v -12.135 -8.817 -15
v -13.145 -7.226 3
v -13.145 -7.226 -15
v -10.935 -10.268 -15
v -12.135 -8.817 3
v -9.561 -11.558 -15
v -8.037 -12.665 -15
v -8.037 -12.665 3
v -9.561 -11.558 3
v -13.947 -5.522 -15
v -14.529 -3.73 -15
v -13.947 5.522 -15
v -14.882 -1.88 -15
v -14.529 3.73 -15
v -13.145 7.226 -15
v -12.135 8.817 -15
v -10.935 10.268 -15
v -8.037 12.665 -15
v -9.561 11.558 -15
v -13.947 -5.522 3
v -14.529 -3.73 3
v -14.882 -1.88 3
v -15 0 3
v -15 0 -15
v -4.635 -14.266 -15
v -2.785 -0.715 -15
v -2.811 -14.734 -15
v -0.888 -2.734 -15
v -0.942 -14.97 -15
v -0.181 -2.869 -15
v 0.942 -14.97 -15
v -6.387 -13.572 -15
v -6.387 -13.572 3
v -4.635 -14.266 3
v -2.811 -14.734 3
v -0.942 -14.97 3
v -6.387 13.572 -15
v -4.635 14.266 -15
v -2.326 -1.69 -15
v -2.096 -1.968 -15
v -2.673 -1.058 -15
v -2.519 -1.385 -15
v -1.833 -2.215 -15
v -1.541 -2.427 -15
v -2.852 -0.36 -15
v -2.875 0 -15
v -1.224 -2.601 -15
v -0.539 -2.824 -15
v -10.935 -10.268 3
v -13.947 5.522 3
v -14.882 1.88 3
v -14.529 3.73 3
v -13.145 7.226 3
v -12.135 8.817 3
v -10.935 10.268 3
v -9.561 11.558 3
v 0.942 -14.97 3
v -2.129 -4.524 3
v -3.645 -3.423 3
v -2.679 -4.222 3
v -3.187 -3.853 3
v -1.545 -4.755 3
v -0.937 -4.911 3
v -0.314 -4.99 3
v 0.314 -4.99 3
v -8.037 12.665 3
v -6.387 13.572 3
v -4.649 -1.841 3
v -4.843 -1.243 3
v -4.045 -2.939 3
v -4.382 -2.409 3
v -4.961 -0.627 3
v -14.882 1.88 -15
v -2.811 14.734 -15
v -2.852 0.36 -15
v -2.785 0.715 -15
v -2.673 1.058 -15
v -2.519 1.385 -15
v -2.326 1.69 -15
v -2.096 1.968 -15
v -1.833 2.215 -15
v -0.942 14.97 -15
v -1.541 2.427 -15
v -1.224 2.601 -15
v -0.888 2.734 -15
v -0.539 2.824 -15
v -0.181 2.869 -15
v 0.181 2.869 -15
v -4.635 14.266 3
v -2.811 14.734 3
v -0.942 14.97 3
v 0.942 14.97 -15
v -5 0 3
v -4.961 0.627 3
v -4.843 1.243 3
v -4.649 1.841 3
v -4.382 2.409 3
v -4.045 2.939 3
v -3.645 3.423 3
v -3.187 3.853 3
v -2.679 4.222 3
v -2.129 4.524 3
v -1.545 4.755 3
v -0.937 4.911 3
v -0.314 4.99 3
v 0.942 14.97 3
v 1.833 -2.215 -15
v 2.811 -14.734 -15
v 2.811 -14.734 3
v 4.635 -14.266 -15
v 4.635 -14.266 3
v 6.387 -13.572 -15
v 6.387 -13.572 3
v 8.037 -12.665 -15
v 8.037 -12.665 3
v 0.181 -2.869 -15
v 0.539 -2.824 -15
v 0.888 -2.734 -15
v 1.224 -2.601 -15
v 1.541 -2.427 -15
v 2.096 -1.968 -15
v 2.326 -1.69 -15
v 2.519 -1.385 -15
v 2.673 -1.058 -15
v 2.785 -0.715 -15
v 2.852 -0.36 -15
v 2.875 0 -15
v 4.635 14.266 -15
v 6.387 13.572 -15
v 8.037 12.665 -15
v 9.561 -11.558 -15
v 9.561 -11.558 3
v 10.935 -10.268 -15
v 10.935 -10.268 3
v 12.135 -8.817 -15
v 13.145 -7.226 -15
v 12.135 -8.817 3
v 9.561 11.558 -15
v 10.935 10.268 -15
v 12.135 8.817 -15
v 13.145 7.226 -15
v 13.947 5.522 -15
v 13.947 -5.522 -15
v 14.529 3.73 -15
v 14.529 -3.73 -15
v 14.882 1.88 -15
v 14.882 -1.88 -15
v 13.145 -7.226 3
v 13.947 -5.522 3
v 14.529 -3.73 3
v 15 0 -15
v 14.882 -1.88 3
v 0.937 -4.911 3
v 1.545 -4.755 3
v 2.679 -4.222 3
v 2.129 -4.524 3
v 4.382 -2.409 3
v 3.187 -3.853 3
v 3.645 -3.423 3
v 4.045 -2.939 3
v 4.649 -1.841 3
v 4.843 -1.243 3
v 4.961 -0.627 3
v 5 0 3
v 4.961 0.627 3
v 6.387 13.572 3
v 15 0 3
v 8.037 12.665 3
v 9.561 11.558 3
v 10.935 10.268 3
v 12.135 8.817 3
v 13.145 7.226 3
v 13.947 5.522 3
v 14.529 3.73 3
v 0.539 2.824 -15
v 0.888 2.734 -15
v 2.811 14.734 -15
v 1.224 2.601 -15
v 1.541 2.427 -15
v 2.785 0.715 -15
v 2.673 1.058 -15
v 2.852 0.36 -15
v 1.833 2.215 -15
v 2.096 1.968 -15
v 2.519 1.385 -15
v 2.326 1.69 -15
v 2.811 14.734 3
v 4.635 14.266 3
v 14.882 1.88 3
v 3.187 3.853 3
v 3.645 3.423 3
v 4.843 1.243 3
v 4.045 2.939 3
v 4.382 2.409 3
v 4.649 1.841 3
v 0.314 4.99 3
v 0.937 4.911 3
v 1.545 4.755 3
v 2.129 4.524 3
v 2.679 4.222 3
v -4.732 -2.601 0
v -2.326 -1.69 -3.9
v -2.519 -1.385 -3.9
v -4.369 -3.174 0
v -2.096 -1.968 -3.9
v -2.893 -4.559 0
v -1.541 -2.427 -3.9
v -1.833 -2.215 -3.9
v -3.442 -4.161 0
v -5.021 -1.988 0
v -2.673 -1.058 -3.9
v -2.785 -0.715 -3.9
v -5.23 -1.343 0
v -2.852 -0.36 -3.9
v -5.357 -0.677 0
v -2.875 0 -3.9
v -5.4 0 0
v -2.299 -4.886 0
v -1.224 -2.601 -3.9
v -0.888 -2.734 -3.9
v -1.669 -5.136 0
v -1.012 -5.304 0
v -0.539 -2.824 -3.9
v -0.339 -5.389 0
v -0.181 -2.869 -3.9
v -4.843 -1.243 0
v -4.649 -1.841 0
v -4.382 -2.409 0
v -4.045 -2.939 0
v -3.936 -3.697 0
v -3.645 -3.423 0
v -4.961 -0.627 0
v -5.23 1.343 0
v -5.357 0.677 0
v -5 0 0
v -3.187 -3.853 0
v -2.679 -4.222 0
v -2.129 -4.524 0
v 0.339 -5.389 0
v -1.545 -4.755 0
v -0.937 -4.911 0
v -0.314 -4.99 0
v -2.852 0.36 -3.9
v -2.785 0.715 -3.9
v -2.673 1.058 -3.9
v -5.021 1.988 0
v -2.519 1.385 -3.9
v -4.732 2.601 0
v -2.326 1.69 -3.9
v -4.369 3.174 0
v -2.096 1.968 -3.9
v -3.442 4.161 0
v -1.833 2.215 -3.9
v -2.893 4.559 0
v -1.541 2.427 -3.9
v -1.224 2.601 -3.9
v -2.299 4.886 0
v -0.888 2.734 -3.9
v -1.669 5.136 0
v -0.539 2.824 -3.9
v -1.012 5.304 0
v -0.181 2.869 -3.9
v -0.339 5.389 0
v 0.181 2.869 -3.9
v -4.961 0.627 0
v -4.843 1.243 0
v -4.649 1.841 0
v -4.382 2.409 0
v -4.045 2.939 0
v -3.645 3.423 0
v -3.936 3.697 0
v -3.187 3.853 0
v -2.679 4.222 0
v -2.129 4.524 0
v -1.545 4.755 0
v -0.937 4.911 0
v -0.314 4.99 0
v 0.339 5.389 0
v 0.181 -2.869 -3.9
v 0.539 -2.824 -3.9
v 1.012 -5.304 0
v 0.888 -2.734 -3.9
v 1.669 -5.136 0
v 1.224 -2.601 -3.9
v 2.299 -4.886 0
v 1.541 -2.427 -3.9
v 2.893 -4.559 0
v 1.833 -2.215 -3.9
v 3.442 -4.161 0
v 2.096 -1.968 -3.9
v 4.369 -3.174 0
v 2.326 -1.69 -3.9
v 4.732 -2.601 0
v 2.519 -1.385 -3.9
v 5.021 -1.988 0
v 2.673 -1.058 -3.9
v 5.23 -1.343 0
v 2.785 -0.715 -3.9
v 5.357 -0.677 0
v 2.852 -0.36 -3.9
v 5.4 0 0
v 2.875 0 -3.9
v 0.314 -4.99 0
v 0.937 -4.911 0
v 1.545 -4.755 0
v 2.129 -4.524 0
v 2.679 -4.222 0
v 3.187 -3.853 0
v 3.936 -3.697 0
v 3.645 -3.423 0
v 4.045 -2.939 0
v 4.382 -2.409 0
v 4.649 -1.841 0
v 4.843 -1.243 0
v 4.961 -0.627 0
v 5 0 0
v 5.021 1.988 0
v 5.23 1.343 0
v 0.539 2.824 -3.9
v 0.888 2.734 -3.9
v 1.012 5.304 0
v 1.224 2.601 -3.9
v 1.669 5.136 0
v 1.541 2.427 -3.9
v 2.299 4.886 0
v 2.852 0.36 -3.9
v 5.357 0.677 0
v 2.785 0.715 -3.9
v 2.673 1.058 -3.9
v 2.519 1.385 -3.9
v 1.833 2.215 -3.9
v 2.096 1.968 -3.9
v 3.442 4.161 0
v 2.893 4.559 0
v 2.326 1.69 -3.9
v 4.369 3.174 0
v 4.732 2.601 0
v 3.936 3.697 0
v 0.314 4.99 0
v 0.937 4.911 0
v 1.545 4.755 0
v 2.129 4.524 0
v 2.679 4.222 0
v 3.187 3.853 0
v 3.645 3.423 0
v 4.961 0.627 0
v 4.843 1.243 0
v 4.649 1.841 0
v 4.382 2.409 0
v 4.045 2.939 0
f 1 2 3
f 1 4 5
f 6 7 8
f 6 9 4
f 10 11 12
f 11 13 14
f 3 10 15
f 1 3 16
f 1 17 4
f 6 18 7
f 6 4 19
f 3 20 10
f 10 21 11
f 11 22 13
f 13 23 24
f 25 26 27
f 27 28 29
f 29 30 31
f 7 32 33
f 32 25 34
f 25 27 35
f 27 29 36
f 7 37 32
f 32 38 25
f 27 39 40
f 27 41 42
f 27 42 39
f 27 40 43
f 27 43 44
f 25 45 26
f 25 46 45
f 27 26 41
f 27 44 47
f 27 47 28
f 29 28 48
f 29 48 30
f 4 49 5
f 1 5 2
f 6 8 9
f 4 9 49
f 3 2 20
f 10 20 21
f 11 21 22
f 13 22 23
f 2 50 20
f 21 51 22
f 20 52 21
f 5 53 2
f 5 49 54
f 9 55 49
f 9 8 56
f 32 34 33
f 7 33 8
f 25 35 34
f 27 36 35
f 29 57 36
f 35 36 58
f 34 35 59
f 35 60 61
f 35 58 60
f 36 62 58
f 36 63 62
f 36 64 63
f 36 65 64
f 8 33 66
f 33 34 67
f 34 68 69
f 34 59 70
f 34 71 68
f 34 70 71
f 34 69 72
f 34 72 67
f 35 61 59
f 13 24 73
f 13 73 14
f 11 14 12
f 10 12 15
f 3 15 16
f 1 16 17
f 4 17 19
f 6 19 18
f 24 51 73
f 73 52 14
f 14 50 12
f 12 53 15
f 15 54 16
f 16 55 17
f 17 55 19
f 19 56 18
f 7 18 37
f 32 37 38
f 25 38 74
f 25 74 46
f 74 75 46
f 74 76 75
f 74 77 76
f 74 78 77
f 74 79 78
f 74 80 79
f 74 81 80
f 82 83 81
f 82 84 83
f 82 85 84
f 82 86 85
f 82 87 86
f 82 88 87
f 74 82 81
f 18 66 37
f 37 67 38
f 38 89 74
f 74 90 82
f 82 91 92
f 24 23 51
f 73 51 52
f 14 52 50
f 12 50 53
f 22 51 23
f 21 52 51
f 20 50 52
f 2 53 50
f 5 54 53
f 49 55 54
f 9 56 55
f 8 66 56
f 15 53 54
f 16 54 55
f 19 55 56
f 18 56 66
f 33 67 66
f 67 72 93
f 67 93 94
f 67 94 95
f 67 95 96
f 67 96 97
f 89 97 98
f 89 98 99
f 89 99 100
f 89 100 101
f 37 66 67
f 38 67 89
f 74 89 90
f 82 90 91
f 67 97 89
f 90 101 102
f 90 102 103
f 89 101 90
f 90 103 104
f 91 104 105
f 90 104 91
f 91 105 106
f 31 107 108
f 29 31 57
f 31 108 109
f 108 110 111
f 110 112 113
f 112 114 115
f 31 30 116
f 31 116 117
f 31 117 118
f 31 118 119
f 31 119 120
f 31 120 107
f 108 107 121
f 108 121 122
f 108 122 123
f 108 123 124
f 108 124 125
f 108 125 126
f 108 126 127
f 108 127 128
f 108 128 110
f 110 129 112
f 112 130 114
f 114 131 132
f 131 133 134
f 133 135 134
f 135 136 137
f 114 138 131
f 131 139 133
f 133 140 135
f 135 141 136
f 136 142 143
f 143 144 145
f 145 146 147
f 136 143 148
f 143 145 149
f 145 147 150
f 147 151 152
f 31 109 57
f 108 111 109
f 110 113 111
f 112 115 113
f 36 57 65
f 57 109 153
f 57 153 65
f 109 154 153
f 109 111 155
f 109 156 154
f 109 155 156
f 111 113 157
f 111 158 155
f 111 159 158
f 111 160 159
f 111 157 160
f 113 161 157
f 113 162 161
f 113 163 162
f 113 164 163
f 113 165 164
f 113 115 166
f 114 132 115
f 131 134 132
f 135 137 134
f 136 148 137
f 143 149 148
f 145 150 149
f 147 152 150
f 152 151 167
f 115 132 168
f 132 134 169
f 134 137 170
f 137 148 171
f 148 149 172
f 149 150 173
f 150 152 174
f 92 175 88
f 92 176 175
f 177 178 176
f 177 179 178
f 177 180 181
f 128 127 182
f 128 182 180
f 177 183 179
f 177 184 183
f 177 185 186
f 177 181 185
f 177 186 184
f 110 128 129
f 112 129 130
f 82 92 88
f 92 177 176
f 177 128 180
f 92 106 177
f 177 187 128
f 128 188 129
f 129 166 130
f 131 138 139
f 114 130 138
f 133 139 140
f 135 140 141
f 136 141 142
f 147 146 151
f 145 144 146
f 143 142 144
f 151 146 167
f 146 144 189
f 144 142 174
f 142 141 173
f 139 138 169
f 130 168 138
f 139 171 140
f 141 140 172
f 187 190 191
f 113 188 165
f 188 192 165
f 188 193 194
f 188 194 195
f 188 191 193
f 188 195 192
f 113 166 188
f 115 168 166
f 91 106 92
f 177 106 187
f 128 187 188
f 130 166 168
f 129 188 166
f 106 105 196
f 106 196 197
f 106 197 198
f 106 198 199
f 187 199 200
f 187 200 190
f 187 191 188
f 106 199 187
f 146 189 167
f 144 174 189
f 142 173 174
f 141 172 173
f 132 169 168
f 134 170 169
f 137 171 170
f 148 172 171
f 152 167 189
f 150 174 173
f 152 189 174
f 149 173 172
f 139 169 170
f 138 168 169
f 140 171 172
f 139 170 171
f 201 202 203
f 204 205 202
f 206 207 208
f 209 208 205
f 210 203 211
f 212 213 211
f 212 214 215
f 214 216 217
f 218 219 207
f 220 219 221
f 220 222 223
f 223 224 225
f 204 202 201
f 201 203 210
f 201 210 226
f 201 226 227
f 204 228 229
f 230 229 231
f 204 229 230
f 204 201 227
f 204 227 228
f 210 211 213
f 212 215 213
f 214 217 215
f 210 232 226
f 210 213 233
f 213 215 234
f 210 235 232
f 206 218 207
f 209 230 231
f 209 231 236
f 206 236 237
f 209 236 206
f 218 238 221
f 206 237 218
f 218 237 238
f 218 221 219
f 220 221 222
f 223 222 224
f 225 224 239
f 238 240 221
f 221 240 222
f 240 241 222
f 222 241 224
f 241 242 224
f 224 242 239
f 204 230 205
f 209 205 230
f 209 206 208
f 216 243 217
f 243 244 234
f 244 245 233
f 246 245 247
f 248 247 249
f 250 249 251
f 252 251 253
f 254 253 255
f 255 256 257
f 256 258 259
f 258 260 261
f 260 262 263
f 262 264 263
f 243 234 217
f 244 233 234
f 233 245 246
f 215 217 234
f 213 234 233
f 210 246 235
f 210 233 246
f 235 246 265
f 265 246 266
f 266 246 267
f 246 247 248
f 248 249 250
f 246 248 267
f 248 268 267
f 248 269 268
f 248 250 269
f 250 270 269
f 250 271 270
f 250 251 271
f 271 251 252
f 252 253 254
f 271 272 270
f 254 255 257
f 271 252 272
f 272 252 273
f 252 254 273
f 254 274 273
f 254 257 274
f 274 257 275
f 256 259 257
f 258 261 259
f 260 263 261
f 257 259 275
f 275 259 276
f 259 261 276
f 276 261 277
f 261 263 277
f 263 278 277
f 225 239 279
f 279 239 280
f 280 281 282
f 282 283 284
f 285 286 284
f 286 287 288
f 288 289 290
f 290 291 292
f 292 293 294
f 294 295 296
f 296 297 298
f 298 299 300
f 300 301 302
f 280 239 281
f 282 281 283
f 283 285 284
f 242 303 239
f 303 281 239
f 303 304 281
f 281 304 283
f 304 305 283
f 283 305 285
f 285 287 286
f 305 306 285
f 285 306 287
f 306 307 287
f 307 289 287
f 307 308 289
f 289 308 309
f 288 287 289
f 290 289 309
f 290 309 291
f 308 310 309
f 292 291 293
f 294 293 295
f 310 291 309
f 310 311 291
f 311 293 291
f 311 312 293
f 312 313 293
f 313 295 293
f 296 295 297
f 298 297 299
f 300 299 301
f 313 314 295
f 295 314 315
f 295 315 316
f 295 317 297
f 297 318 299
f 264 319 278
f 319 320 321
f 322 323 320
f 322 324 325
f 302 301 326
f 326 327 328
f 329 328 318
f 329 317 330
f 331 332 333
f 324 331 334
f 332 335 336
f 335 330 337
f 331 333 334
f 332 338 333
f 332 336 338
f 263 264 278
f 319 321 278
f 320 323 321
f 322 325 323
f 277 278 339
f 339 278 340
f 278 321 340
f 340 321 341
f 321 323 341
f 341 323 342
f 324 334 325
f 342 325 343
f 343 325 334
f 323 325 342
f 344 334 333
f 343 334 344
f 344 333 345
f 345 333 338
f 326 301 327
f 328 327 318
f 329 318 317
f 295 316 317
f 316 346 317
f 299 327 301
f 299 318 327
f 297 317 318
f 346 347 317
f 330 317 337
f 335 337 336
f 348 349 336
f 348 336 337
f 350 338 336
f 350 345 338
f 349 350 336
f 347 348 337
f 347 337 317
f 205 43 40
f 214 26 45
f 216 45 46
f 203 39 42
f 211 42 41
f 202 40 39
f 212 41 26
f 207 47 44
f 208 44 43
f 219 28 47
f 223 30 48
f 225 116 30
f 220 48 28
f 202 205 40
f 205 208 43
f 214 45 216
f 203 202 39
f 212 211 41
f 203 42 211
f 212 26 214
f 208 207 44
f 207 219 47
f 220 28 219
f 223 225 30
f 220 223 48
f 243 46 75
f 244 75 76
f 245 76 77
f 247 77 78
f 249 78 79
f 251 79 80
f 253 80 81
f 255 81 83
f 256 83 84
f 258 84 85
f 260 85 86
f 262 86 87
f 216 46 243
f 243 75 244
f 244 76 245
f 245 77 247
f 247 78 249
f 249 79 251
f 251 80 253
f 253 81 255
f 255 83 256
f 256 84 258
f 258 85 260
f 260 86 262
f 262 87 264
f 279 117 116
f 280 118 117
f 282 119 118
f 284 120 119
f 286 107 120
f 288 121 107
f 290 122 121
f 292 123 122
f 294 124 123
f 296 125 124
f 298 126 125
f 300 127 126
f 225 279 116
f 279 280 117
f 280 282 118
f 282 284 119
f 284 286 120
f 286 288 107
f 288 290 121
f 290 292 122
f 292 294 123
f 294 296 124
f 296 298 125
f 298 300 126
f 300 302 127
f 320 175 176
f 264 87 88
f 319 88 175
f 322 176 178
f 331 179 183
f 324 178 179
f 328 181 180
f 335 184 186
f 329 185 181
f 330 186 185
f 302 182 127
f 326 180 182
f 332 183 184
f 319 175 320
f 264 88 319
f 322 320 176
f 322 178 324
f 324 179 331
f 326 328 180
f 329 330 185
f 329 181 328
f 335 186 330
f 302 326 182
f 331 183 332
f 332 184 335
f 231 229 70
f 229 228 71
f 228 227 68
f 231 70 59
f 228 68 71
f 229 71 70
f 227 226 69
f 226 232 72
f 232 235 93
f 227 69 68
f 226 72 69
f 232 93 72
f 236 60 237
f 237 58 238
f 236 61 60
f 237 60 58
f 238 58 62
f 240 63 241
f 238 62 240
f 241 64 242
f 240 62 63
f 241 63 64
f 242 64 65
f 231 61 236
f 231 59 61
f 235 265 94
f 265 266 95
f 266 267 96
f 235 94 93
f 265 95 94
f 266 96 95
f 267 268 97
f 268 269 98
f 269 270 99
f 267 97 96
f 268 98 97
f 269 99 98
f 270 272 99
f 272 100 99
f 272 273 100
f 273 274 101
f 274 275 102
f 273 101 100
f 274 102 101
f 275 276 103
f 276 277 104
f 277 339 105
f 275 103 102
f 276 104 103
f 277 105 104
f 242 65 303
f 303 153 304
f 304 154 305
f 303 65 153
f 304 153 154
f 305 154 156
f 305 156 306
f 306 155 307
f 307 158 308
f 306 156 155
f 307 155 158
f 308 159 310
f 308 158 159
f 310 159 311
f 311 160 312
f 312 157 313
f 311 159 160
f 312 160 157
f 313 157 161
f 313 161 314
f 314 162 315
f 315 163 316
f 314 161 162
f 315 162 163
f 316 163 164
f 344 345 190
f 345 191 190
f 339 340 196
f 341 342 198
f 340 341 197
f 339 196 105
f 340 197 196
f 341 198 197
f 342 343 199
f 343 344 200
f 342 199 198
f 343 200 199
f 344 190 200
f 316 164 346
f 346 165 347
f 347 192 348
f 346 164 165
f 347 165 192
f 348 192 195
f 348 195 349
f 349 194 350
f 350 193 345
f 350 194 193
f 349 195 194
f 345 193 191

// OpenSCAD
$fn = 50;

difference() {
	union() {
		translate(v = [0, 0, -15.0]) {
			cylinder(h = 18, r = 15.0);
		}
		#translate(v = [0, 0, -18.0]) {
			cylinder(h = 18, r = 2.875);
		}
	}
	union() {
		translate(v = [0, 0, 0]) {
			rotate(a = [0, 0, 0]) {
				difference() {
					union() {
						translate(v = [0, 0, -18.0]) {
							cylinder(h = 18, r = 2.6);
						}
						translate(v = [0, 0, -3.9]) {
							cylinder(h = 3.9, r1 = 2.875, r2 = 5.4);
						}
						translate(v = [0, 0, -18.0]) {
							cylinder(h = 18, r = 2.875);
						}
						translate(v = [0, 0, -18.0]) {
							cylinder(h = 18, r = 2.6);
						}
					}
					union();
				}
			}
		}
		#cylinder(h = 3, r = 5.0);
	}
}
